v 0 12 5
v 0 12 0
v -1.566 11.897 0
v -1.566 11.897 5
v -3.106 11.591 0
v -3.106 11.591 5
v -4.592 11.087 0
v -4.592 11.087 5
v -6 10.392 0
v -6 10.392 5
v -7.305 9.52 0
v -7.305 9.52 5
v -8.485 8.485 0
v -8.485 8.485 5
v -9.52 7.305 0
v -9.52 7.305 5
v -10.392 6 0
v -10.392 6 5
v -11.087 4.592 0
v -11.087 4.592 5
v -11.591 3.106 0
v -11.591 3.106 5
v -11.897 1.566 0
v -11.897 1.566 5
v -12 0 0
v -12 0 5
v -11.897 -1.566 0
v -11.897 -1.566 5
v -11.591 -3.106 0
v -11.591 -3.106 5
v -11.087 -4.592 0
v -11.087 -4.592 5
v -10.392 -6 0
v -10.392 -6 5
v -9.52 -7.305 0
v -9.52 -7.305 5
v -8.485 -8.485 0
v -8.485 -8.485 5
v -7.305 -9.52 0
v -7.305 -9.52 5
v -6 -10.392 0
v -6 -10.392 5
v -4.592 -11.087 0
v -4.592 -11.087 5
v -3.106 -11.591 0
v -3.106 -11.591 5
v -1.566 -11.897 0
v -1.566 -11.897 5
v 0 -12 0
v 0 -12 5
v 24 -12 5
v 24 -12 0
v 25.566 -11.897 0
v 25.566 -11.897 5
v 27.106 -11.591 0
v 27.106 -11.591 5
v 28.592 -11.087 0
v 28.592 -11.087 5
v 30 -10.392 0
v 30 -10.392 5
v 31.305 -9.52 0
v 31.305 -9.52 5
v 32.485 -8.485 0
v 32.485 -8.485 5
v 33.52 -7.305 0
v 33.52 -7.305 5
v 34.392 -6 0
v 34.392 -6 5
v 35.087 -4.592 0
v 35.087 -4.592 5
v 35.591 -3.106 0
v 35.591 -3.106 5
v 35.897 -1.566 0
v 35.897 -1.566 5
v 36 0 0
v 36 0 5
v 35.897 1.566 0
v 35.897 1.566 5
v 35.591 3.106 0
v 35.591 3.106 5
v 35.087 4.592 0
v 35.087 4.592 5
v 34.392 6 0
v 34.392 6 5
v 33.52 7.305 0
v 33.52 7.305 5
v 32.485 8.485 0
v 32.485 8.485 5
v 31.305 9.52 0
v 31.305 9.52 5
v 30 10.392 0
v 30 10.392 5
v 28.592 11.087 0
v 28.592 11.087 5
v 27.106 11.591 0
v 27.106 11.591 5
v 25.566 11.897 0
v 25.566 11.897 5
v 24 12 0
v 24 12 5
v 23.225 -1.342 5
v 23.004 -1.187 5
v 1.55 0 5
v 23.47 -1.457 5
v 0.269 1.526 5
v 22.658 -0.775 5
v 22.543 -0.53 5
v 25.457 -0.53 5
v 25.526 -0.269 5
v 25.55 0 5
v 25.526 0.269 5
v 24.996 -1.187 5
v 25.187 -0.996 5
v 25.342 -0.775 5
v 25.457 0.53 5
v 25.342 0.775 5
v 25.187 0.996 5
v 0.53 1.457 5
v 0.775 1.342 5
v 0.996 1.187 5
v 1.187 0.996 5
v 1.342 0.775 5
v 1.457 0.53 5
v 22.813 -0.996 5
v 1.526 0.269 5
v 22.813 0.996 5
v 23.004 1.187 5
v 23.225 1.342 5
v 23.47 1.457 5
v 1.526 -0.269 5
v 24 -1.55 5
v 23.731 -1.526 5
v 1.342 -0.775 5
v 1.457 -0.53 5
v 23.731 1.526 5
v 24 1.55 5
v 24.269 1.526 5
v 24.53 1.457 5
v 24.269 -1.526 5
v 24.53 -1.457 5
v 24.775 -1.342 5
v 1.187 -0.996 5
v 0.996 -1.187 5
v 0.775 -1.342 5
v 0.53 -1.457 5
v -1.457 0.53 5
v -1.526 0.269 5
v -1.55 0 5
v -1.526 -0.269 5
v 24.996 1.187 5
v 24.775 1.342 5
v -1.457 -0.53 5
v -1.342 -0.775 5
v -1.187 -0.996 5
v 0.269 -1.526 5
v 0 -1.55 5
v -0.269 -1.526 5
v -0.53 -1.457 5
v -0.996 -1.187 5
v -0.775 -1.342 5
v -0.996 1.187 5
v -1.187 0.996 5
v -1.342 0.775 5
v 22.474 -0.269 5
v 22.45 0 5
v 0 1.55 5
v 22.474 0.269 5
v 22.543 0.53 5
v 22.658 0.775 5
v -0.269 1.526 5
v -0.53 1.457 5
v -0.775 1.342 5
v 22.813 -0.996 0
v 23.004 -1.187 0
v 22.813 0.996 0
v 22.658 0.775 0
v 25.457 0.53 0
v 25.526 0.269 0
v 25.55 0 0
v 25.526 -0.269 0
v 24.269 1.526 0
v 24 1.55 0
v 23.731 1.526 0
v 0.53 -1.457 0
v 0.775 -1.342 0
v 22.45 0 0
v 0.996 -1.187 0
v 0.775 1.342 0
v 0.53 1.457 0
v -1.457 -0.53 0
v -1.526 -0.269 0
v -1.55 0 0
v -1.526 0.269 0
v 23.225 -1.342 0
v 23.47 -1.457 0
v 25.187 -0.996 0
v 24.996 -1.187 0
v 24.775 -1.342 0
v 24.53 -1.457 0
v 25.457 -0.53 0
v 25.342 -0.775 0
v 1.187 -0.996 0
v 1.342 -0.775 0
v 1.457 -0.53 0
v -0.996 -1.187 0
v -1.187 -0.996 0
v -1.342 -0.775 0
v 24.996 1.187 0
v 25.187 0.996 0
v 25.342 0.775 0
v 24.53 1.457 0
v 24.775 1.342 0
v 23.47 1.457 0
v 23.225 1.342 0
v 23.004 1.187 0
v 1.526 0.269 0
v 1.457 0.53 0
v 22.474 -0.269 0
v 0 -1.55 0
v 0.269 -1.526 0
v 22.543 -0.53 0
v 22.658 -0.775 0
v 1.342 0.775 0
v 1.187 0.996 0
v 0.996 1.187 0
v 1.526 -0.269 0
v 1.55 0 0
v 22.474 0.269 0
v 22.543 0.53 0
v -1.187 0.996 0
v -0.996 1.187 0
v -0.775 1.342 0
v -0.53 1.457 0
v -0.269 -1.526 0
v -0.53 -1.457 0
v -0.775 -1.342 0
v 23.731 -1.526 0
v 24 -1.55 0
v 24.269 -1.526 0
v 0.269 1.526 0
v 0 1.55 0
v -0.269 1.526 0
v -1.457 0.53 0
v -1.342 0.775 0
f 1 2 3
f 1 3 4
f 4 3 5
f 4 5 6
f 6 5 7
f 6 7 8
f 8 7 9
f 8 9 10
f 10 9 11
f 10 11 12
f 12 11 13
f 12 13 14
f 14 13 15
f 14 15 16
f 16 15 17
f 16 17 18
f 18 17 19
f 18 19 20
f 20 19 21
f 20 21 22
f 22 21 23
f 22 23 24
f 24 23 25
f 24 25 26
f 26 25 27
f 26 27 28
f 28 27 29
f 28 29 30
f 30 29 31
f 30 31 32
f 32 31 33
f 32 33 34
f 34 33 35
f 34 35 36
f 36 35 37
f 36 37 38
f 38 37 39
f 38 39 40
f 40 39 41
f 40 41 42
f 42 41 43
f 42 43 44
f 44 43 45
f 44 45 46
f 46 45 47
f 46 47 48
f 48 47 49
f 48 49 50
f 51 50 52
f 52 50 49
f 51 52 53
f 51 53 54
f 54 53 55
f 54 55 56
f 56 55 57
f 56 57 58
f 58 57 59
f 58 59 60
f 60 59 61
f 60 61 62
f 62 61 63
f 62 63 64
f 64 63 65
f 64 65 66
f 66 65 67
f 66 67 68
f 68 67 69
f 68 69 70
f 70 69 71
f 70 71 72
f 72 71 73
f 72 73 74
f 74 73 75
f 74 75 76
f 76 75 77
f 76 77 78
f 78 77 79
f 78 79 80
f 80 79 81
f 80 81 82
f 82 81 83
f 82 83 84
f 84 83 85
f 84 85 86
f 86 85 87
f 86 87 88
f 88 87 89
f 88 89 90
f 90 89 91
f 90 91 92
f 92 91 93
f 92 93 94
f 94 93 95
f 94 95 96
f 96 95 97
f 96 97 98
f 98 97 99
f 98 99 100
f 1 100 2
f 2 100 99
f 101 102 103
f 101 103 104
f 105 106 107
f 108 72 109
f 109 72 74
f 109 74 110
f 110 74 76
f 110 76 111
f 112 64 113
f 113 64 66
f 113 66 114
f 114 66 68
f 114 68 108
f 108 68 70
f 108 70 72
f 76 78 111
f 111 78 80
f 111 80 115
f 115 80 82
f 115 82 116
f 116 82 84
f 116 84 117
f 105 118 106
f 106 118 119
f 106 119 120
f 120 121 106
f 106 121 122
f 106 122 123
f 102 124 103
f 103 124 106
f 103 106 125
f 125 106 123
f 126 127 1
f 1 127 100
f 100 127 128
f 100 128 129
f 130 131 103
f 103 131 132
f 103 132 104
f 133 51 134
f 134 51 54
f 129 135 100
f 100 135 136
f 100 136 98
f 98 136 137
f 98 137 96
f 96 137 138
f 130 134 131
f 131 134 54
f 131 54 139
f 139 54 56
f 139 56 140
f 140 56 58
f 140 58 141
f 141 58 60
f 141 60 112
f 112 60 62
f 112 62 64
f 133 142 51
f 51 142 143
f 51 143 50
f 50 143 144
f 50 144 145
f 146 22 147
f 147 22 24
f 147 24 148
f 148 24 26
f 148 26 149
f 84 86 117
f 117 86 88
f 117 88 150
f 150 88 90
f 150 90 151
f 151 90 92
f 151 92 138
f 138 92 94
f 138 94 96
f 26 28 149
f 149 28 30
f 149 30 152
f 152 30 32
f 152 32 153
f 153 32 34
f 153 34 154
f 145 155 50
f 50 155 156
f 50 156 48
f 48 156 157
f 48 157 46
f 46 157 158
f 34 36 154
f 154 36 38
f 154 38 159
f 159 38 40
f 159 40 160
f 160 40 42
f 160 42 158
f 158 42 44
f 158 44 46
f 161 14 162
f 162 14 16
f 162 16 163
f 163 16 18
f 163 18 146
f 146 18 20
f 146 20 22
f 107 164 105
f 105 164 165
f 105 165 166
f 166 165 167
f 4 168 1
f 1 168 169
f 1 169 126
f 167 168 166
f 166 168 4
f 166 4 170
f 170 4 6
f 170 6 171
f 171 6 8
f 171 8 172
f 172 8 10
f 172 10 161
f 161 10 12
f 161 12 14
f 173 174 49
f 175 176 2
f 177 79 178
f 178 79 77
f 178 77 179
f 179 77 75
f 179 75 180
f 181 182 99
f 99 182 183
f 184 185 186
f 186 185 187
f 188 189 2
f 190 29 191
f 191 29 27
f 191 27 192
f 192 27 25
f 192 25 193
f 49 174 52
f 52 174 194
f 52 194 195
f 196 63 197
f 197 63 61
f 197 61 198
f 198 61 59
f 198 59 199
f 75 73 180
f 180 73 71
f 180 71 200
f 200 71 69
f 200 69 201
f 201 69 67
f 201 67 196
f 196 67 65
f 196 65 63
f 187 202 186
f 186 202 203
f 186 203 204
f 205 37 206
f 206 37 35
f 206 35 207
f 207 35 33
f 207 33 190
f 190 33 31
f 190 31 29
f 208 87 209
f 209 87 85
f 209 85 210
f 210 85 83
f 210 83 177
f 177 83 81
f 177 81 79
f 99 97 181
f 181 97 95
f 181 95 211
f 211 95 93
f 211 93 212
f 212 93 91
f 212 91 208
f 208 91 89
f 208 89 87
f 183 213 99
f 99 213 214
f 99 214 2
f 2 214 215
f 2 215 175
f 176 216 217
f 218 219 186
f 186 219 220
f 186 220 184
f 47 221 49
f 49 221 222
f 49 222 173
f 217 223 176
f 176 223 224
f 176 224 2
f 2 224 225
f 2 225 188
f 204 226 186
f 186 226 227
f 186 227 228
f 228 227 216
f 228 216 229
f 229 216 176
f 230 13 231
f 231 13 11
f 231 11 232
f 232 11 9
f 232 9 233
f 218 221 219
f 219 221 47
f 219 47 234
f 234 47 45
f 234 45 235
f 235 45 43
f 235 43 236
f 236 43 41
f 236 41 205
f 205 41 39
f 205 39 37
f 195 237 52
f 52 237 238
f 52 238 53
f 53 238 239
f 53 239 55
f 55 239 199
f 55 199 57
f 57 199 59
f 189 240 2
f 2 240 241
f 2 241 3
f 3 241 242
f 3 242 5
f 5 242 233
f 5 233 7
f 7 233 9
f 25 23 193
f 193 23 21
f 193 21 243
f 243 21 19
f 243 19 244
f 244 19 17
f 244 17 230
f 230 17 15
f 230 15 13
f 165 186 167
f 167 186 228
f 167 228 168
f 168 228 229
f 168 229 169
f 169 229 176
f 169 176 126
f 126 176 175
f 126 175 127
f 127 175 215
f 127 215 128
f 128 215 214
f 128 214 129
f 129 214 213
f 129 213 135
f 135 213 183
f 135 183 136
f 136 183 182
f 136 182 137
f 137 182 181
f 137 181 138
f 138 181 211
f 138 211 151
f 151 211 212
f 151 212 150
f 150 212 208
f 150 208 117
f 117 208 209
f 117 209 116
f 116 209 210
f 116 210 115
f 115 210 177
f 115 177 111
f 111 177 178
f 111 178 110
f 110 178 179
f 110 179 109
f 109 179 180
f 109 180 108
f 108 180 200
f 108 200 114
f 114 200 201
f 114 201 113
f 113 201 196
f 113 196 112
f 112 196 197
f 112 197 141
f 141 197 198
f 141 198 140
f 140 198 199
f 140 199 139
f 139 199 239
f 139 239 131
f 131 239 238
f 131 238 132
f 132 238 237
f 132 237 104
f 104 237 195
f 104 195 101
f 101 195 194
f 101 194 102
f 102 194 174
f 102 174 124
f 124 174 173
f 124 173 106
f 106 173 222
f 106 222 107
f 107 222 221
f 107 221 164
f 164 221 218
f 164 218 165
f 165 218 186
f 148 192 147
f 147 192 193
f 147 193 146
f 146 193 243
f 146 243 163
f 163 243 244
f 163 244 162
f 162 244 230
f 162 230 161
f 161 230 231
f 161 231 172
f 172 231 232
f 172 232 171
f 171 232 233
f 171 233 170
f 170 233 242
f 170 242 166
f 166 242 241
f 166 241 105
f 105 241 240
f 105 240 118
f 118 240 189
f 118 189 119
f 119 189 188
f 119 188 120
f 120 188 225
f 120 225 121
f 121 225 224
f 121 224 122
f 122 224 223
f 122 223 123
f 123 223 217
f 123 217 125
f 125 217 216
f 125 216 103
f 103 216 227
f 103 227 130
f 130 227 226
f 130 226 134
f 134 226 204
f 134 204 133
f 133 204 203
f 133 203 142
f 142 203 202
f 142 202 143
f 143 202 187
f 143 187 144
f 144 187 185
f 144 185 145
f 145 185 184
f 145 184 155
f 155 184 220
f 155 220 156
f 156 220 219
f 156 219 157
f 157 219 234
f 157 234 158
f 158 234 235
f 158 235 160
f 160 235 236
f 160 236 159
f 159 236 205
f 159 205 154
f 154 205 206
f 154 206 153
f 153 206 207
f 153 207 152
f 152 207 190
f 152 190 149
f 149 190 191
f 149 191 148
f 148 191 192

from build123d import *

# Parameters (mm, degrees)
EXTRUDE_1_DEPTH     = 5
SKETCH_2_R          = 1.55
CUT_EXTRUDE_1_DEPTH = 12


with BuildPart() as part:
    # 草图1 → 凸台-拉伸1 (new body)
    with BuildSketch(Plane.XY):
        with BuildLine():
            Line((0, 12), (24, 12))
            ThreePointArc((24, 12), (36, 0), (24, -12))
            Line((24, -12), (0, -12))
            ThreePointArc((0, -12), (-12, 0), (0, 12))
        make_face()
    extrude(amount=EXTRUDE_1_DEPTH)

    # 草图2 → 切除-拉伸1 (cut)
    with BuildSketch(Plane(origin=(0, 0, 0), x_dir=(-1, 0, 0), z_dir=(0, 0, -1))):
        Circle(SKETCH_2_R)
        with Locations((-24, 0)):
            Circle(SKETCH_2_R)
    extrude(amount=-CUT_EXTRUDE_1_DEPTH, mode=Mode.SUBTRACT)


solid = part.part
